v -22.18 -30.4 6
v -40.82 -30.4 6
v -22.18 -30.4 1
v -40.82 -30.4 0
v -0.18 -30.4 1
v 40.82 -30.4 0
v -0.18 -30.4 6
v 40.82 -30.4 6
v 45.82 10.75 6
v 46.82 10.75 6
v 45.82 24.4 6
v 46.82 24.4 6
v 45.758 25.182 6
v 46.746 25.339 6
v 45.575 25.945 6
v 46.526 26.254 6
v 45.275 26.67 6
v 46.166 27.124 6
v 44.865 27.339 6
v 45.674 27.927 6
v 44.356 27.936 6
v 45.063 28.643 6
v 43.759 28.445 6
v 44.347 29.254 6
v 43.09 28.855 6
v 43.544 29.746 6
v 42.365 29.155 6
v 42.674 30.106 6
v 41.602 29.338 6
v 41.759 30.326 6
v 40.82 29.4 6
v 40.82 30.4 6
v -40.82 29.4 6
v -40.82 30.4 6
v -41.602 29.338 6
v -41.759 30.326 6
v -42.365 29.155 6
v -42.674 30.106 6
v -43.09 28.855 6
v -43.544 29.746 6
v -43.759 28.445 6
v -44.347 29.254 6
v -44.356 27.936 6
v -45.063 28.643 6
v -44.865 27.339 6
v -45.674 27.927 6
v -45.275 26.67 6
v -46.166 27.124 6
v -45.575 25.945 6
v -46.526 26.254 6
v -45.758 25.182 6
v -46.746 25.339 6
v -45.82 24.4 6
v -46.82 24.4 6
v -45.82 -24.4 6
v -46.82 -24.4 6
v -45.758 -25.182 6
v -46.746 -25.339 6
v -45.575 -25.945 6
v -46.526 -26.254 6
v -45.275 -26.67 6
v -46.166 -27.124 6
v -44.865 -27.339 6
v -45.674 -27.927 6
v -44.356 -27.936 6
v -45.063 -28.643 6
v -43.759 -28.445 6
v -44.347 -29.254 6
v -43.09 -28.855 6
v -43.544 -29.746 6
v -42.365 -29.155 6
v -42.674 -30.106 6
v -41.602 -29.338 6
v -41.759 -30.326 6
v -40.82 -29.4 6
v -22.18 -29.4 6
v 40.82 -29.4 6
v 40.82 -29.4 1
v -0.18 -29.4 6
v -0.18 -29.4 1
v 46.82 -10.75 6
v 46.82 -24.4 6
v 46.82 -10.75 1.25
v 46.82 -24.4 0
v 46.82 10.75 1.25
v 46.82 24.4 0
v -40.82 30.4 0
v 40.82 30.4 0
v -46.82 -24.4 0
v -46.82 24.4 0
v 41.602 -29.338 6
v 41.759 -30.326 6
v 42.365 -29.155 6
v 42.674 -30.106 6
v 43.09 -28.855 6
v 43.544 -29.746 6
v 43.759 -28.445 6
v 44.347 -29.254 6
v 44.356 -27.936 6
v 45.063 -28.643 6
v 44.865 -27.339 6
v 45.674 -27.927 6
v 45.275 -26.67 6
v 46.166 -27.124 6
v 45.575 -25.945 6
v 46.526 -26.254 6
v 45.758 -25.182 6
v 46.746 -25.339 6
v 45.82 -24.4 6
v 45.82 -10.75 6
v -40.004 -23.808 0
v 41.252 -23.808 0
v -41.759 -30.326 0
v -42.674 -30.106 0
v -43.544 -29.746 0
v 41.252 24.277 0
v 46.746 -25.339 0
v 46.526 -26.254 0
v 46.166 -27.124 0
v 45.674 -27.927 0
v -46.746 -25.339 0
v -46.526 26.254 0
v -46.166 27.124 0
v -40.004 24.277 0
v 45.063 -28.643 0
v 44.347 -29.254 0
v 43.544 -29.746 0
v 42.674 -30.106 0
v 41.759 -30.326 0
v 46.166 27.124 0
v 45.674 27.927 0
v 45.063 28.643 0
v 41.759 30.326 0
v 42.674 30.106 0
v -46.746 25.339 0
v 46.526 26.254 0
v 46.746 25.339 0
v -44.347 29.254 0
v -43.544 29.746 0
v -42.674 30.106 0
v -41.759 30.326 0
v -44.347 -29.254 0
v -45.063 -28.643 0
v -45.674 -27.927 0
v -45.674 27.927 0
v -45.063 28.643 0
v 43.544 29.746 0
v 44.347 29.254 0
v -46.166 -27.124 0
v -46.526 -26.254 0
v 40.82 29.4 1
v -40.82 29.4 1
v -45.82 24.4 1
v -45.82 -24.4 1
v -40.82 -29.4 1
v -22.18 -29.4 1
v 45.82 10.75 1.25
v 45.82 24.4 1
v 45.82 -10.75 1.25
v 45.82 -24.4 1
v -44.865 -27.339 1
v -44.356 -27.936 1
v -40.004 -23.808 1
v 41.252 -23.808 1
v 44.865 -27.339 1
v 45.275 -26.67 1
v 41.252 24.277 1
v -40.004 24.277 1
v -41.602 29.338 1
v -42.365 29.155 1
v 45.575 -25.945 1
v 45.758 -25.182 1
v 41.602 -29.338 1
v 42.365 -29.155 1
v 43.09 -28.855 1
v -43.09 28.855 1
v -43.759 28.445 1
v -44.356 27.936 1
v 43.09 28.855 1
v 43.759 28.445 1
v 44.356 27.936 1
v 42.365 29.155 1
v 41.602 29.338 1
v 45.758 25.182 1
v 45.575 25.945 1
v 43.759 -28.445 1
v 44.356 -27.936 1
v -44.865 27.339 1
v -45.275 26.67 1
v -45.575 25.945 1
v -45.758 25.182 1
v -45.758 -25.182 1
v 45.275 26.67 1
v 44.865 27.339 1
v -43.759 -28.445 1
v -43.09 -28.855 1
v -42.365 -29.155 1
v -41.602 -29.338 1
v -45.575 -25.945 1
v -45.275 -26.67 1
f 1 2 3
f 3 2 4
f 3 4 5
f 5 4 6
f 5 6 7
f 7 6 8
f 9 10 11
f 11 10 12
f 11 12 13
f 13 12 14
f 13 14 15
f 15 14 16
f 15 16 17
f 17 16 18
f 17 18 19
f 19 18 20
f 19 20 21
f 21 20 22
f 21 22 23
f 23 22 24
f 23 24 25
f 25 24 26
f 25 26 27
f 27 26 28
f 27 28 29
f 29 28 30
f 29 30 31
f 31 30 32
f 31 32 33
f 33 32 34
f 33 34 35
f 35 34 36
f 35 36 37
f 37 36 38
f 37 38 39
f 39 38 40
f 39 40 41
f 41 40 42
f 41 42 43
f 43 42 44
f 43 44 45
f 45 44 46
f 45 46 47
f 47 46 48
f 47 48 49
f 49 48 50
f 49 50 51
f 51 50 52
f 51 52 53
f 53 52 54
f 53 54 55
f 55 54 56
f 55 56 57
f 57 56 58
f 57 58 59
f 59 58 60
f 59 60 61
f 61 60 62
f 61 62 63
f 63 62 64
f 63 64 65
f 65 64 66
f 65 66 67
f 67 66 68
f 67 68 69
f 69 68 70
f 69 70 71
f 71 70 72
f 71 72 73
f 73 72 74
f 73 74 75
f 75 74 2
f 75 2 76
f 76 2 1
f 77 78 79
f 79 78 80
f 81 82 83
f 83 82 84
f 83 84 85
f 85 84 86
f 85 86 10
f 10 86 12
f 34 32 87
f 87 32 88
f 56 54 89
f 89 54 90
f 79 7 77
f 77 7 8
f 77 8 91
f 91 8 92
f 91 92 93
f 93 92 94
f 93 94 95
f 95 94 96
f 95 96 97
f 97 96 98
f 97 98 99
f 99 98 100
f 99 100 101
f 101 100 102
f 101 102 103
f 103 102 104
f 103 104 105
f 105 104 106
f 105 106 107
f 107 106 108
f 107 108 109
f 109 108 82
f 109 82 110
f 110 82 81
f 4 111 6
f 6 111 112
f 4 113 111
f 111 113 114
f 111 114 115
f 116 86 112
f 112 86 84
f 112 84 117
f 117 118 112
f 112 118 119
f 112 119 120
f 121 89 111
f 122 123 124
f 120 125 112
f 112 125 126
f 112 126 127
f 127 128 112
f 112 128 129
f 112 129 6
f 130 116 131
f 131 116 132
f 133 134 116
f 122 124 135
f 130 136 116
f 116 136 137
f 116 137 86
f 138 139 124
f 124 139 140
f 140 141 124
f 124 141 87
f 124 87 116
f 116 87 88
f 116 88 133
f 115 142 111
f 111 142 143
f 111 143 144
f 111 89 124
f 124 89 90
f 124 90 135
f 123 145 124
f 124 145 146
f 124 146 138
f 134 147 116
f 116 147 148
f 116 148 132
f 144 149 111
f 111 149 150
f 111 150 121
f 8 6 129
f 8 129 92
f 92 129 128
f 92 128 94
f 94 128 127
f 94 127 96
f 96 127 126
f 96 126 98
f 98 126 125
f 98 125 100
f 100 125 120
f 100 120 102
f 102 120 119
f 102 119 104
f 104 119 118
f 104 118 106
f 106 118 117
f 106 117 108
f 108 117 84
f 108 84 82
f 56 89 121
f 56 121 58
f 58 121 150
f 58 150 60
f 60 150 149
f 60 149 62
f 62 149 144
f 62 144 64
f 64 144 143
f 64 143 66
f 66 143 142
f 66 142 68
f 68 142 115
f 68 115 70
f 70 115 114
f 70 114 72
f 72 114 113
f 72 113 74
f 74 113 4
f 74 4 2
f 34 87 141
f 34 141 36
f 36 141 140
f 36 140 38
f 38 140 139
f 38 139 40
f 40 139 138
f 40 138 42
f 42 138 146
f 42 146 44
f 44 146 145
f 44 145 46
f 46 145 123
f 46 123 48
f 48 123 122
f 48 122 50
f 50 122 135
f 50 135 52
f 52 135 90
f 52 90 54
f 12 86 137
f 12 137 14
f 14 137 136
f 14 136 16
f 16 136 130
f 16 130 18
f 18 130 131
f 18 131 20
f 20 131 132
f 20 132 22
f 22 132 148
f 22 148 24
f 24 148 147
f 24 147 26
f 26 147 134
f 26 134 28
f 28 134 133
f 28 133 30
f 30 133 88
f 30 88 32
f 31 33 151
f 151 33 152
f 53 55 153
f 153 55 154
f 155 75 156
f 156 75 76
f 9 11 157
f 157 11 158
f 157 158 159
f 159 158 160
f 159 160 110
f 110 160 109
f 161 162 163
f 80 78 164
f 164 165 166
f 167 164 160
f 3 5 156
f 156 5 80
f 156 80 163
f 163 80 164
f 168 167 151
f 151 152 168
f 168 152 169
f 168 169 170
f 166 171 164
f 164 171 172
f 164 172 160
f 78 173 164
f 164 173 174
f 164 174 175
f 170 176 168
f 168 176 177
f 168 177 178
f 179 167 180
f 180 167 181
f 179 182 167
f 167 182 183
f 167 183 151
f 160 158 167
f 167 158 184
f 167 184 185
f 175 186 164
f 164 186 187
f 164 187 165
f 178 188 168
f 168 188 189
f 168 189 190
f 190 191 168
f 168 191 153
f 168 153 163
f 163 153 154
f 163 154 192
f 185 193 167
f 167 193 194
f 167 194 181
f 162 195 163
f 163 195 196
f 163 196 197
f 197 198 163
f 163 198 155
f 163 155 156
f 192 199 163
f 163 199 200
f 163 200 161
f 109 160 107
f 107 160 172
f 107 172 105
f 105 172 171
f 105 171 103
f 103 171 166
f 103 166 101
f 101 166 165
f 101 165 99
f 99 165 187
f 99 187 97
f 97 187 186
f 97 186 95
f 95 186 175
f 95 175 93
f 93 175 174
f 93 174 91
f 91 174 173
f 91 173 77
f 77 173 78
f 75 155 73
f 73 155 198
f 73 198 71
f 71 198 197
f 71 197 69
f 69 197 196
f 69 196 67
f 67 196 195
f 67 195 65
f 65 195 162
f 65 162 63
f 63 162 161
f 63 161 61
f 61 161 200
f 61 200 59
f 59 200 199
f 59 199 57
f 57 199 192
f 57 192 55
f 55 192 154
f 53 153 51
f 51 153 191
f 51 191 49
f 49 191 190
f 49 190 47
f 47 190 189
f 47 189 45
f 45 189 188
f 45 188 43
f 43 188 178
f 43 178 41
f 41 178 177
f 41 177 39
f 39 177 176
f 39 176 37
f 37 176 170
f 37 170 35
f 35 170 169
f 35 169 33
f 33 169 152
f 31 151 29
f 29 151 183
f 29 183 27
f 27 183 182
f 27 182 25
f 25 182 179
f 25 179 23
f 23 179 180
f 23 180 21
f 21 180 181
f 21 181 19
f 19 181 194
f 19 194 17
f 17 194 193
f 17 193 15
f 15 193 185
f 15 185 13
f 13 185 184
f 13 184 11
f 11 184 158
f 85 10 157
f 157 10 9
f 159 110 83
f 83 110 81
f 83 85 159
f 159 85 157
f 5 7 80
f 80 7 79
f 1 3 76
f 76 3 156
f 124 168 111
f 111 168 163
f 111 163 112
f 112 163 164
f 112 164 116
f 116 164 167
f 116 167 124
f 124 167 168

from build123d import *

# Parameters (mm, degrees)
SKIZZE1_W                       = 60.8
SKIZZE1_H                       = 93.64
AUFSATZ_LINEAR_AUSTRAGEN1_DEPTH = 6
VERRUNDUNG1_R                   = 6
WANDUNG1_T                      = -1
SKIZZE2_W                       = 21.5
SKIZZE2_H                       = 9.5
SCHNITT_LINEAR_AUSTRAGEN1_DEPTH = 6
SKIZZE3_W                       = 22
SKIZZE3_H                       = 5
SCHNITT_LINEAR_AUSTRAGEN2_DEPTH = 6
SKIZZE4_W                       = 81.255814336
SKIZZE4_H                       = 48.084928105
SCHNITT_LINEAR_AUSTRAGEN3_DEPTH = 6


with BuildPart() as part:
    # Skizze1 → Aufsatz-Linear austragen1 (new body)
    with BuildSketch(Plane(origin=(0, 0, 0), x_dir=(0, 1, 0), z_dir=(0, 0, 1))):
        Rectangle(SKIZZE1_W, SKIZZE1_H)
    extrude(amount=AUFSATZ_LINEAR_AUSTRAGEN1_DEPTH)

    # Verrundung1
    verrundung1_edges = [part.edges().sort_by_distance(p)[0] for p in [
        (46.82, 30.4, 3),
        (46.82, -30.4, 3),
        (-46.82, -30.4, 3),
        (-46.82, 30.4, 3),
    ]]
    fillet(verrundung1_edges, radius=VERRUNDUNG1_R)

    # Wandung1
    wandung1_openings = [part.faces().sort_by_distance(p)[0] for p in [
        (0, 0, 6),
    ]]
    offset(amount=WANDUNG1_T, openings=wandung1_openings, kind=Kind.INTERSECTION)

    # Skizze2 → Schnitt-Linear austragen1 (cut)
    with BuildSketch(Plane.YZ.offset(46.82)):
        with Locations((0, 6)):
            Rectangle(SKIZZE2_W, SKIZZE2_H)
    extrude(amount=-SCHNITT_LINEAR_AUSTRAGEN1_DEPTH, mode=Mode.SUBTRACT)

    # Skizze3 → Schnitt-Linear austragen2 (cut)
    with BuildSketch(Plane.XZ.offset(30.4)):
        with Locations((-11.18, 3.5)):
            Rectangle(SKIZZE3_W, SKIZZE3_H)
    extrude(amount=-SCHNITT_LINEAR_AUSTRAGEN2_DEPTH, mode=Mode.SUBTRACT)

    # Skizze4 → Schnitt-Linear austragen3 (cut)
    with BuildSketch(Plane(origin=(0, 0, 0), x_dir=(1, 0, 0), z_dir=(0, 0, -1))):
        with Locations((0.624387115, -0.234506354)):
            Rectangle(SKIZZE4_W, SKIZZE4_H)
    extrude(amount=-SCHNITT_LINEAR_AUSTRAGEN3_DEPTH, mode=Mode.SUBTRACT)


solid = part.part
